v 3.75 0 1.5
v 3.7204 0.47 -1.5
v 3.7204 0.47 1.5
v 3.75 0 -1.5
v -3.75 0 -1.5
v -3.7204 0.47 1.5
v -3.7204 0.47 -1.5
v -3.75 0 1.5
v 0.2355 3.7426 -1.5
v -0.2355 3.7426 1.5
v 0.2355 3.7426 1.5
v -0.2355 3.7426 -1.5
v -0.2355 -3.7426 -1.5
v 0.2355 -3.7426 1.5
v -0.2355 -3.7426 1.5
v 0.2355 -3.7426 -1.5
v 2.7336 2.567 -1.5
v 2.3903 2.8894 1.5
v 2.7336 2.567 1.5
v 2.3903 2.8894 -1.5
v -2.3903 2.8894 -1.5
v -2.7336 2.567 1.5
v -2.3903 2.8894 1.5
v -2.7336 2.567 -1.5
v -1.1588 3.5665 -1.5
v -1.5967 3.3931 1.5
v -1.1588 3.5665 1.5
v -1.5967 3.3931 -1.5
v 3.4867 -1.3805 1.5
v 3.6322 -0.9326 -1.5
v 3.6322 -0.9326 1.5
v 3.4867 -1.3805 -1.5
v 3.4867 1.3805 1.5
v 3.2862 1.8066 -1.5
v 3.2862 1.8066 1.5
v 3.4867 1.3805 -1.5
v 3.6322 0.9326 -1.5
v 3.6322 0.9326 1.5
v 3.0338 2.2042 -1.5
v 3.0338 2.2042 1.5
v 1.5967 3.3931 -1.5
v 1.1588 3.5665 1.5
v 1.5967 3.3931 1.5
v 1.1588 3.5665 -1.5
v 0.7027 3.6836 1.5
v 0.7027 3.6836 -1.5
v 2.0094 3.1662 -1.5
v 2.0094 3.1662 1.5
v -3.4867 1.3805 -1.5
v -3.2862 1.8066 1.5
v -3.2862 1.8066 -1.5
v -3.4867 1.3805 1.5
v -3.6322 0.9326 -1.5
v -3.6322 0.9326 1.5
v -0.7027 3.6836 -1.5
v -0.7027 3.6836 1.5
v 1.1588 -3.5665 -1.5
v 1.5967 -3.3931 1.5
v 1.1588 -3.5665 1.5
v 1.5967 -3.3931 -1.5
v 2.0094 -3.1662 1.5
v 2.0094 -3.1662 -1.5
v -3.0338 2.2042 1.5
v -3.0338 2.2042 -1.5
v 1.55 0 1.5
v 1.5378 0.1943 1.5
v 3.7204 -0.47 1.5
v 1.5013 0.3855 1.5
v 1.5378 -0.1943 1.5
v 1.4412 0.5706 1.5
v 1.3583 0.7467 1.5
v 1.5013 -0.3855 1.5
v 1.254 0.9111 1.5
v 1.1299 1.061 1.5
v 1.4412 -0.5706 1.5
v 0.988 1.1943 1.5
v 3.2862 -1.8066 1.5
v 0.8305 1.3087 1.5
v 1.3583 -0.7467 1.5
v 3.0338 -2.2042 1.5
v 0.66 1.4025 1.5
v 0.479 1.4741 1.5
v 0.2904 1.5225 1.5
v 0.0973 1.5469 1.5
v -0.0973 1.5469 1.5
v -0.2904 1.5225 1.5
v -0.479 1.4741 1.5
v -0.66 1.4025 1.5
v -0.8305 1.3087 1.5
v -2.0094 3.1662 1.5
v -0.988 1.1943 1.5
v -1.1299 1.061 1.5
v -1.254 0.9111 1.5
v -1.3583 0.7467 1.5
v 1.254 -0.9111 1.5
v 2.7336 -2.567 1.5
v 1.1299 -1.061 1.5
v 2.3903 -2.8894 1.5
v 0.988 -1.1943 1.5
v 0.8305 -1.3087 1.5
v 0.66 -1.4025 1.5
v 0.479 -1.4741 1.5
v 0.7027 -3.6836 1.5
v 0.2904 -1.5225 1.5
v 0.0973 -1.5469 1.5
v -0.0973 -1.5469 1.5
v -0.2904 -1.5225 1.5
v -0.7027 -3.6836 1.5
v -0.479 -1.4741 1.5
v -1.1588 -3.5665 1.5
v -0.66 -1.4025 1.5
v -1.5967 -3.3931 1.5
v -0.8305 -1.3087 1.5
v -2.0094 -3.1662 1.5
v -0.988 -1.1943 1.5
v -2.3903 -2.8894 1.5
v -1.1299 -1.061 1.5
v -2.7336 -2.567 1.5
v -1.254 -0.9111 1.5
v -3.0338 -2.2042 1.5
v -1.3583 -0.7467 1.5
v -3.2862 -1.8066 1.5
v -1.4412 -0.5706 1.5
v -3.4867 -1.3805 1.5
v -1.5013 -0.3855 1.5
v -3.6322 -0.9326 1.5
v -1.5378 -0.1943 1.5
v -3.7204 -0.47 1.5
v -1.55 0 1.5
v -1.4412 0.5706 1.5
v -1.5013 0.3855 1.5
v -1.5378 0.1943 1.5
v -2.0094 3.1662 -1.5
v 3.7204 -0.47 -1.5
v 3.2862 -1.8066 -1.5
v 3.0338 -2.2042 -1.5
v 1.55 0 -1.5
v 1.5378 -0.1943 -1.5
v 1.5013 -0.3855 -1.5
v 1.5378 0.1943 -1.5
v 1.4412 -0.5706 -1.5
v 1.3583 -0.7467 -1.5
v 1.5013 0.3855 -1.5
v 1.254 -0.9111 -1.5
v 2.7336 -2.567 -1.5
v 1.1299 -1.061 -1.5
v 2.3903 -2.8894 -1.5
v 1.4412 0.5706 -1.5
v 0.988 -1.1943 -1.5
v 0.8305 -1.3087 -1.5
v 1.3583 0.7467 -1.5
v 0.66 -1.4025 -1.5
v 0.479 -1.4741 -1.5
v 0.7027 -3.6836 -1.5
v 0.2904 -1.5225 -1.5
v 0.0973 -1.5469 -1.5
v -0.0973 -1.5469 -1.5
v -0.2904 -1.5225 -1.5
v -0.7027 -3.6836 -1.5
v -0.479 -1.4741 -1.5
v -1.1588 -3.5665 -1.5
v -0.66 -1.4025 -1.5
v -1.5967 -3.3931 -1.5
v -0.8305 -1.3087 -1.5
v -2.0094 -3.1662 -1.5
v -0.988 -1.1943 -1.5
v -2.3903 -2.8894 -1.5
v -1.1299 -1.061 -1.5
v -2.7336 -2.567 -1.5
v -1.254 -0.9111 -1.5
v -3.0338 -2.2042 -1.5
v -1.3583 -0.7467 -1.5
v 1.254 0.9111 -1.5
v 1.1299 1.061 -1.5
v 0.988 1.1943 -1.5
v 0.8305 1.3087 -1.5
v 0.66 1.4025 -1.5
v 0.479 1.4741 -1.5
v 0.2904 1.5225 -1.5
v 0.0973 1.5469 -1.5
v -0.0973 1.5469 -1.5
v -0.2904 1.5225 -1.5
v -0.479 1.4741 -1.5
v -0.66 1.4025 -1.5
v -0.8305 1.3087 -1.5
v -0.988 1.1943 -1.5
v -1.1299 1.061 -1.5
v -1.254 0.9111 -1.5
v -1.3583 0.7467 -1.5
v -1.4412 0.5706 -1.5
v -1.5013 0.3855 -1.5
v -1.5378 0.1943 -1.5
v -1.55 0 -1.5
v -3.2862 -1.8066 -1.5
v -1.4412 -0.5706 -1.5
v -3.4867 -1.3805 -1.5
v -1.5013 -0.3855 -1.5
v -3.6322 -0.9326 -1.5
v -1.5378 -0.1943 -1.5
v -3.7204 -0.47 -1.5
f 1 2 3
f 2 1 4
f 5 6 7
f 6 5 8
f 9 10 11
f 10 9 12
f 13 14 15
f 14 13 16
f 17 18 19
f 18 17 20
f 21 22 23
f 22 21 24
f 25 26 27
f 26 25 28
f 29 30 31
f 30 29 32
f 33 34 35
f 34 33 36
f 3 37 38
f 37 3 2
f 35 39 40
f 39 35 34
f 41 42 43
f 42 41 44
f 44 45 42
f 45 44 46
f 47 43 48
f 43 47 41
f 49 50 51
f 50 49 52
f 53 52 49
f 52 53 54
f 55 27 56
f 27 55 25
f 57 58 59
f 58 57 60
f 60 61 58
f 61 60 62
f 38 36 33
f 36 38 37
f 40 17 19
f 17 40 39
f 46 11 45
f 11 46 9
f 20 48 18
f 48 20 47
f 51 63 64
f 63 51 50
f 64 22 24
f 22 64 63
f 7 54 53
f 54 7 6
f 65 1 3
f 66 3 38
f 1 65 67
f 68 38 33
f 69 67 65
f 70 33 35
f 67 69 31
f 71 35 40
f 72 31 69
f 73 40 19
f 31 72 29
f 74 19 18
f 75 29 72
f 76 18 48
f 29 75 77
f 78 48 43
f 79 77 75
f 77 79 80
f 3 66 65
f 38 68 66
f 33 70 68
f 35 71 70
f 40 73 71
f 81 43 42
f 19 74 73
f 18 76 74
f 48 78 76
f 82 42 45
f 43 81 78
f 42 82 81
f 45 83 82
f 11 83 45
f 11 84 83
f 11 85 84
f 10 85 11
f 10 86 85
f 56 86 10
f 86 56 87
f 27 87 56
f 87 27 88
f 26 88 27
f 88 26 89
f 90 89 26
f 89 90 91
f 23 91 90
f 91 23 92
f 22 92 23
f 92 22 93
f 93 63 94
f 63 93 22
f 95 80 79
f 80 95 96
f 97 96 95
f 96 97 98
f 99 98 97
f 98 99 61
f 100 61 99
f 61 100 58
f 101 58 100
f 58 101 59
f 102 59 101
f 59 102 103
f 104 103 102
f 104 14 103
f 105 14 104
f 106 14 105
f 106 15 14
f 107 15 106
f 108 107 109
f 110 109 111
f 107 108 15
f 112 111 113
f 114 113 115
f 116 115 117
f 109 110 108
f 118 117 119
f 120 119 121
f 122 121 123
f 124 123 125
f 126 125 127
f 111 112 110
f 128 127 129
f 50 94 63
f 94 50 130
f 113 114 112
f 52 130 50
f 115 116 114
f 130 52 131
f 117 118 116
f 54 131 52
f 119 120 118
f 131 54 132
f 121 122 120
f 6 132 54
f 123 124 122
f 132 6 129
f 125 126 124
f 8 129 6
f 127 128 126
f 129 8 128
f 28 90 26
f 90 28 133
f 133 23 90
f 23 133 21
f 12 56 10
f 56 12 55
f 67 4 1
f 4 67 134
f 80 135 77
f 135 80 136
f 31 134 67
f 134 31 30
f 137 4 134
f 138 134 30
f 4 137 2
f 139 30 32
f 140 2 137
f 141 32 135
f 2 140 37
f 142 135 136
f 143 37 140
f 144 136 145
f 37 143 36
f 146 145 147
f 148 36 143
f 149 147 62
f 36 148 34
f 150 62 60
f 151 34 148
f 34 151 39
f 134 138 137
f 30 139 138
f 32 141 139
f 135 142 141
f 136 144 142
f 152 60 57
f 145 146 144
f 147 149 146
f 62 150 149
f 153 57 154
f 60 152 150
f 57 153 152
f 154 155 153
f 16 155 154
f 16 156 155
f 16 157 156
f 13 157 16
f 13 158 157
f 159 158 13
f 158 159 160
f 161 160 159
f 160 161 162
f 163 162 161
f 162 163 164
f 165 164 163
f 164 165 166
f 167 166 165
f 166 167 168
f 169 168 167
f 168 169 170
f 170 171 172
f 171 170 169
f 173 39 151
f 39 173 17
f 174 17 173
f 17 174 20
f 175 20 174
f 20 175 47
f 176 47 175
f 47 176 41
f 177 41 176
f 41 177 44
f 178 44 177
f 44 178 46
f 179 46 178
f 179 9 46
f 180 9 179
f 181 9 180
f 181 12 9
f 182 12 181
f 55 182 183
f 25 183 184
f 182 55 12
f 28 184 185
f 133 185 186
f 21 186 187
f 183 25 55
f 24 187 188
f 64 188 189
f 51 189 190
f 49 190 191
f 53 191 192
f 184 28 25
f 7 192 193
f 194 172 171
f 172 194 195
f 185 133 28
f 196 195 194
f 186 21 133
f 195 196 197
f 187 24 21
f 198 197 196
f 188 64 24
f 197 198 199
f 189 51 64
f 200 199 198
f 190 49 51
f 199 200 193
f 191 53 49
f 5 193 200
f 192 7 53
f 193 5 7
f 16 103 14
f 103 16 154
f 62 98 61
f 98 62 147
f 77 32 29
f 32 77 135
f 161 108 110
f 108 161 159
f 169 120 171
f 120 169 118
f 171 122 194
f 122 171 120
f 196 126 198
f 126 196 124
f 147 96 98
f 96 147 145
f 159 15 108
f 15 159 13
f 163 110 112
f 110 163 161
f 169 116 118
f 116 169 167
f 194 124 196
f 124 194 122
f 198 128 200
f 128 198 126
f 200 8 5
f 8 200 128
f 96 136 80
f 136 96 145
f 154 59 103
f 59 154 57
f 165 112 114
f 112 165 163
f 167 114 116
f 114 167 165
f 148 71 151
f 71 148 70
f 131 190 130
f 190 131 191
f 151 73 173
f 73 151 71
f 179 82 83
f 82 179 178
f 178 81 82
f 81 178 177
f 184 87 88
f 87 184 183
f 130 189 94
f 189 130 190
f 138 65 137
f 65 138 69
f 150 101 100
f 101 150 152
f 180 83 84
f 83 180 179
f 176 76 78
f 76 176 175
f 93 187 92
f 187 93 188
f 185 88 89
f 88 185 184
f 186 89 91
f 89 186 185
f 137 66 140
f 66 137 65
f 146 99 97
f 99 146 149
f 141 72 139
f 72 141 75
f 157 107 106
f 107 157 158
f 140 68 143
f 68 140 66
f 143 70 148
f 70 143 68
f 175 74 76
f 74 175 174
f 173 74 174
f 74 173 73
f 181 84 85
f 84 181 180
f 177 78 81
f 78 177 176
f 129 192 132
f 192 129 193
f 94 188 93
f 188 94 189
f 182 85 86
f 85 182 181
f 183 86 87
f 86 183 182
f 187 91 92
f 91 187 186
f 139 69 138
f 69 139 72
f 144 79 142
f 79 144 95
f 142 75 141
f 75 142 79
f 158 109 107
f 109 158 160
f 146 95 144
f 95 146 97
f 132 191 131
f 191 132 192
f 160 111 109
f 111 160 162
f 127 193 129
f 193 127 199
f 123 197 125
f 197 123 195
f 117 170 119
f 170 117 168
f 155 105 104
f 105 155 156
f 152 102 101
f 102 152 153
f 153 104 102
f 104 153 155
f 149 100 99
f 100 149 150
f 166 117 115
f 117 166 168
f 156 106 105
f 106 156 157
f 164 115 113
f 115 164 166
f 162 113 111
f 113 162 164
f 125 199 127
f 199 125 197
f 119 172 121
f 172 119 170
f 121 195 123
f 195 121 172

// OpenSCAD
$fn = 50;


difference() {
	union() {
		translate(v = [0, 0, -1.5000000000]) {
			cylinder(h = 3, r = 3.7500000000);
		}
	}
	union() {
		translate(v = [0, 0, -100.0000000000]) {
			cylinder(h = 200, r = 1.5500000000);
		}
	}
}
